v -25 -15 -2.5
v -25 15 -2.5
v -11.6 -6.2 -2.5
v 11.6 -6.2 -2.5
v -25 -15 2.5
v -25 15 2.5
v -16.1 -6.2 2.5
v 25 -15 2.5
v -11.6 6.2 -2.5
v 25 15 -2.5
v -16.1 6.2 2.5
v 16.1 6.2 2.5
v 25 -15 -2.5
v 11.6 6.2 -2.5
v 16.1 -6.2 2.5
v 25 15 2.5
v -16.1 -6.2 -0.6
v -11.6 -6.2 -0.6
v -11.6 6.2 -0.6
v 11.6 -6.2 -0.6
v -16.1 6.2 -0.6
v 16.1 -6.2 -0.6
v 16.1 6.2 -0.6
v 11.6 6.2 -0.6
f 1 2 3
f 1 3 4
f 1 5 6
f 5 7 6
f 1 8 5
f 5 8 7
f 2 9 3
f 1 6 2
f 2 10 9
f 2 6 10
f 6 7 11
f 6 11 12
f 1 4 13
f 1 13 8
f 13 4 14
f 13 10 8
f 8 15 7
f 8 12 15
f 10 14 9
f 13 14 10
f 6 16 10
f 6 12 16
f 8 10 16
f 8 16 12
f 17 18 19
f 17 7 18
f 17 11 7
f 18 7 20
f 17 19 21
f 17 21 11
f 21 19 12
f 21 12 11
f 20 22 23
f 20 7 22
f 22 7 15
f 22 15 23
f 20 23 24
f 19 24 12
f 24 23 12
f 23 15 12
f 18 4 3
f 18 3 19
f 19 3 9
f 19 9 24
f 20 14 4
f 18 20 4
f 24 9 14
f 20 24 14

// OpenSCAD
// file: ../design_params.scad
// ============================================================
// STARLING SHARED DESIGN PARAMETERS — single source of truth for
// every dimension two parts must agree on.
//
// Consumers:
//   - every part in cad/ does        include <design_params.scad>
//   - parts in cad/calibration/ do   include <../design_params.scad>
//   - scripts/check_params.py FAILS the build if any of these names
//     is re-declared anywhere else — change values HERE only.
//
// Keep this file to simple `name = value;` lines so the tooling can
// parse it. One-off experiments: `openscad -D name=value` beats the
// include, no need to edit this file.
// ============================================================

// --- The paper tube (bought part, consumable) ---
tube_od     = 52.95;   // measured tube OD — verify with cad/calibration/tube_fit_ring.scad
tube_wall   = 3;       // paper wall thickness (measure your tube)
tube_length = 540;

// --- Printed-part fits ---
sleeve_clearance = 0;  // added to every sleeve bore diameter; tune via the fit ring
fit_tol          = 0.2; // clearance for printed slots/pockets
sleeve_wall      = 3;  // wall thickness of printed sleeves

// --- Wing spar chain (rib holes = adapter sockets = carbon rods) ---
spar_rod_d    = 6;     // carbon rod diameter
spar_hole_d   = 6.2;   // printed hole for that rod
spar_spacing  = 20;    // chordwise distance between the two spars
spar_y_offset = 1.5;   // spar line sits this far above the rib chord line

// --- Wing geometry ---
rib_chord     = 100;
naca_code     = 2415;  // cambered lifting section
rib_thickness = 2;

// --- Wing adapter <-> root rib interface ---
wing_tab_thickness = 11; // adapter tab; the root-rib window = this + fit_tol
wing_tab_span      = 15; // how far the tab reaches out from the sleeve
adapter_length     = 40; // sleeve length = tab chord extent

// --- Stations along the tube (assembly; wing slides for CG trim) ---
wing_station       = 300; // wing adapter position, measured from the motor face
tail_tube_stop     = 54;  // tube bottoms out here inside the tail sleeve (rim top)
nose_sleeve_length = 20;  // how far the nose cone slides over the tube

// --- Tail servos (9 g / SG90 class) ---
servo_body   = [23, 12.2]; // [length, width]
servo_flange = [32, 12.2];

// --- Motor (22xx class, rear pusher) ---
motor_shaft_hole_d = 10;
motor_screw_hole_d = 4;
motor_pattern_x    = 16;  // screw pattern
motor_pattern_y    = 19;
// main file
// SERVO MOUNT TEST — flat plate with the 9g servo pocket from
// design_params, to verify the servo footprint and fit_tol before
// printing the whole tail.

include <../design_params.scad>

plate_dims      = [50, 30];
plate_thickness = 5;
flange_thickness = 3;
screw_spacing   = 28;
screw_dia       = 3;
use_screws      = false;

$fn = 100;

servo_mount_plate();

module servo_mount_plate() {
    difference() {
        // 1. The main plate
        cube([plate_dims[0], plate_dims[1], plate_thickness], center = true);

        // 2. Flush pocket for the flange
        translate([0, 0, (plate_thickness / 2) - (flange_thickness / 2)])
            cube([servo_flange[0] + fit_tol,
                  servo_flange[1] + fit_tol,
                  flange_thickness + fit_tol], center = true);

        // 3. Through-hole for the servo body
        cube([servo_body[0] + fit_tol,
              servo_body[1] + fit_tol,
              plate_thickness + 2], center = true);

        if (use_screws)
            for (x_pos = [-screw_spacing / 2, screw_spacing / 2])
                translate([x_pos, 0, 0])
                    cylinder(h = plate_thickness + 2, d = screw_dia, center = true);
    }
}
